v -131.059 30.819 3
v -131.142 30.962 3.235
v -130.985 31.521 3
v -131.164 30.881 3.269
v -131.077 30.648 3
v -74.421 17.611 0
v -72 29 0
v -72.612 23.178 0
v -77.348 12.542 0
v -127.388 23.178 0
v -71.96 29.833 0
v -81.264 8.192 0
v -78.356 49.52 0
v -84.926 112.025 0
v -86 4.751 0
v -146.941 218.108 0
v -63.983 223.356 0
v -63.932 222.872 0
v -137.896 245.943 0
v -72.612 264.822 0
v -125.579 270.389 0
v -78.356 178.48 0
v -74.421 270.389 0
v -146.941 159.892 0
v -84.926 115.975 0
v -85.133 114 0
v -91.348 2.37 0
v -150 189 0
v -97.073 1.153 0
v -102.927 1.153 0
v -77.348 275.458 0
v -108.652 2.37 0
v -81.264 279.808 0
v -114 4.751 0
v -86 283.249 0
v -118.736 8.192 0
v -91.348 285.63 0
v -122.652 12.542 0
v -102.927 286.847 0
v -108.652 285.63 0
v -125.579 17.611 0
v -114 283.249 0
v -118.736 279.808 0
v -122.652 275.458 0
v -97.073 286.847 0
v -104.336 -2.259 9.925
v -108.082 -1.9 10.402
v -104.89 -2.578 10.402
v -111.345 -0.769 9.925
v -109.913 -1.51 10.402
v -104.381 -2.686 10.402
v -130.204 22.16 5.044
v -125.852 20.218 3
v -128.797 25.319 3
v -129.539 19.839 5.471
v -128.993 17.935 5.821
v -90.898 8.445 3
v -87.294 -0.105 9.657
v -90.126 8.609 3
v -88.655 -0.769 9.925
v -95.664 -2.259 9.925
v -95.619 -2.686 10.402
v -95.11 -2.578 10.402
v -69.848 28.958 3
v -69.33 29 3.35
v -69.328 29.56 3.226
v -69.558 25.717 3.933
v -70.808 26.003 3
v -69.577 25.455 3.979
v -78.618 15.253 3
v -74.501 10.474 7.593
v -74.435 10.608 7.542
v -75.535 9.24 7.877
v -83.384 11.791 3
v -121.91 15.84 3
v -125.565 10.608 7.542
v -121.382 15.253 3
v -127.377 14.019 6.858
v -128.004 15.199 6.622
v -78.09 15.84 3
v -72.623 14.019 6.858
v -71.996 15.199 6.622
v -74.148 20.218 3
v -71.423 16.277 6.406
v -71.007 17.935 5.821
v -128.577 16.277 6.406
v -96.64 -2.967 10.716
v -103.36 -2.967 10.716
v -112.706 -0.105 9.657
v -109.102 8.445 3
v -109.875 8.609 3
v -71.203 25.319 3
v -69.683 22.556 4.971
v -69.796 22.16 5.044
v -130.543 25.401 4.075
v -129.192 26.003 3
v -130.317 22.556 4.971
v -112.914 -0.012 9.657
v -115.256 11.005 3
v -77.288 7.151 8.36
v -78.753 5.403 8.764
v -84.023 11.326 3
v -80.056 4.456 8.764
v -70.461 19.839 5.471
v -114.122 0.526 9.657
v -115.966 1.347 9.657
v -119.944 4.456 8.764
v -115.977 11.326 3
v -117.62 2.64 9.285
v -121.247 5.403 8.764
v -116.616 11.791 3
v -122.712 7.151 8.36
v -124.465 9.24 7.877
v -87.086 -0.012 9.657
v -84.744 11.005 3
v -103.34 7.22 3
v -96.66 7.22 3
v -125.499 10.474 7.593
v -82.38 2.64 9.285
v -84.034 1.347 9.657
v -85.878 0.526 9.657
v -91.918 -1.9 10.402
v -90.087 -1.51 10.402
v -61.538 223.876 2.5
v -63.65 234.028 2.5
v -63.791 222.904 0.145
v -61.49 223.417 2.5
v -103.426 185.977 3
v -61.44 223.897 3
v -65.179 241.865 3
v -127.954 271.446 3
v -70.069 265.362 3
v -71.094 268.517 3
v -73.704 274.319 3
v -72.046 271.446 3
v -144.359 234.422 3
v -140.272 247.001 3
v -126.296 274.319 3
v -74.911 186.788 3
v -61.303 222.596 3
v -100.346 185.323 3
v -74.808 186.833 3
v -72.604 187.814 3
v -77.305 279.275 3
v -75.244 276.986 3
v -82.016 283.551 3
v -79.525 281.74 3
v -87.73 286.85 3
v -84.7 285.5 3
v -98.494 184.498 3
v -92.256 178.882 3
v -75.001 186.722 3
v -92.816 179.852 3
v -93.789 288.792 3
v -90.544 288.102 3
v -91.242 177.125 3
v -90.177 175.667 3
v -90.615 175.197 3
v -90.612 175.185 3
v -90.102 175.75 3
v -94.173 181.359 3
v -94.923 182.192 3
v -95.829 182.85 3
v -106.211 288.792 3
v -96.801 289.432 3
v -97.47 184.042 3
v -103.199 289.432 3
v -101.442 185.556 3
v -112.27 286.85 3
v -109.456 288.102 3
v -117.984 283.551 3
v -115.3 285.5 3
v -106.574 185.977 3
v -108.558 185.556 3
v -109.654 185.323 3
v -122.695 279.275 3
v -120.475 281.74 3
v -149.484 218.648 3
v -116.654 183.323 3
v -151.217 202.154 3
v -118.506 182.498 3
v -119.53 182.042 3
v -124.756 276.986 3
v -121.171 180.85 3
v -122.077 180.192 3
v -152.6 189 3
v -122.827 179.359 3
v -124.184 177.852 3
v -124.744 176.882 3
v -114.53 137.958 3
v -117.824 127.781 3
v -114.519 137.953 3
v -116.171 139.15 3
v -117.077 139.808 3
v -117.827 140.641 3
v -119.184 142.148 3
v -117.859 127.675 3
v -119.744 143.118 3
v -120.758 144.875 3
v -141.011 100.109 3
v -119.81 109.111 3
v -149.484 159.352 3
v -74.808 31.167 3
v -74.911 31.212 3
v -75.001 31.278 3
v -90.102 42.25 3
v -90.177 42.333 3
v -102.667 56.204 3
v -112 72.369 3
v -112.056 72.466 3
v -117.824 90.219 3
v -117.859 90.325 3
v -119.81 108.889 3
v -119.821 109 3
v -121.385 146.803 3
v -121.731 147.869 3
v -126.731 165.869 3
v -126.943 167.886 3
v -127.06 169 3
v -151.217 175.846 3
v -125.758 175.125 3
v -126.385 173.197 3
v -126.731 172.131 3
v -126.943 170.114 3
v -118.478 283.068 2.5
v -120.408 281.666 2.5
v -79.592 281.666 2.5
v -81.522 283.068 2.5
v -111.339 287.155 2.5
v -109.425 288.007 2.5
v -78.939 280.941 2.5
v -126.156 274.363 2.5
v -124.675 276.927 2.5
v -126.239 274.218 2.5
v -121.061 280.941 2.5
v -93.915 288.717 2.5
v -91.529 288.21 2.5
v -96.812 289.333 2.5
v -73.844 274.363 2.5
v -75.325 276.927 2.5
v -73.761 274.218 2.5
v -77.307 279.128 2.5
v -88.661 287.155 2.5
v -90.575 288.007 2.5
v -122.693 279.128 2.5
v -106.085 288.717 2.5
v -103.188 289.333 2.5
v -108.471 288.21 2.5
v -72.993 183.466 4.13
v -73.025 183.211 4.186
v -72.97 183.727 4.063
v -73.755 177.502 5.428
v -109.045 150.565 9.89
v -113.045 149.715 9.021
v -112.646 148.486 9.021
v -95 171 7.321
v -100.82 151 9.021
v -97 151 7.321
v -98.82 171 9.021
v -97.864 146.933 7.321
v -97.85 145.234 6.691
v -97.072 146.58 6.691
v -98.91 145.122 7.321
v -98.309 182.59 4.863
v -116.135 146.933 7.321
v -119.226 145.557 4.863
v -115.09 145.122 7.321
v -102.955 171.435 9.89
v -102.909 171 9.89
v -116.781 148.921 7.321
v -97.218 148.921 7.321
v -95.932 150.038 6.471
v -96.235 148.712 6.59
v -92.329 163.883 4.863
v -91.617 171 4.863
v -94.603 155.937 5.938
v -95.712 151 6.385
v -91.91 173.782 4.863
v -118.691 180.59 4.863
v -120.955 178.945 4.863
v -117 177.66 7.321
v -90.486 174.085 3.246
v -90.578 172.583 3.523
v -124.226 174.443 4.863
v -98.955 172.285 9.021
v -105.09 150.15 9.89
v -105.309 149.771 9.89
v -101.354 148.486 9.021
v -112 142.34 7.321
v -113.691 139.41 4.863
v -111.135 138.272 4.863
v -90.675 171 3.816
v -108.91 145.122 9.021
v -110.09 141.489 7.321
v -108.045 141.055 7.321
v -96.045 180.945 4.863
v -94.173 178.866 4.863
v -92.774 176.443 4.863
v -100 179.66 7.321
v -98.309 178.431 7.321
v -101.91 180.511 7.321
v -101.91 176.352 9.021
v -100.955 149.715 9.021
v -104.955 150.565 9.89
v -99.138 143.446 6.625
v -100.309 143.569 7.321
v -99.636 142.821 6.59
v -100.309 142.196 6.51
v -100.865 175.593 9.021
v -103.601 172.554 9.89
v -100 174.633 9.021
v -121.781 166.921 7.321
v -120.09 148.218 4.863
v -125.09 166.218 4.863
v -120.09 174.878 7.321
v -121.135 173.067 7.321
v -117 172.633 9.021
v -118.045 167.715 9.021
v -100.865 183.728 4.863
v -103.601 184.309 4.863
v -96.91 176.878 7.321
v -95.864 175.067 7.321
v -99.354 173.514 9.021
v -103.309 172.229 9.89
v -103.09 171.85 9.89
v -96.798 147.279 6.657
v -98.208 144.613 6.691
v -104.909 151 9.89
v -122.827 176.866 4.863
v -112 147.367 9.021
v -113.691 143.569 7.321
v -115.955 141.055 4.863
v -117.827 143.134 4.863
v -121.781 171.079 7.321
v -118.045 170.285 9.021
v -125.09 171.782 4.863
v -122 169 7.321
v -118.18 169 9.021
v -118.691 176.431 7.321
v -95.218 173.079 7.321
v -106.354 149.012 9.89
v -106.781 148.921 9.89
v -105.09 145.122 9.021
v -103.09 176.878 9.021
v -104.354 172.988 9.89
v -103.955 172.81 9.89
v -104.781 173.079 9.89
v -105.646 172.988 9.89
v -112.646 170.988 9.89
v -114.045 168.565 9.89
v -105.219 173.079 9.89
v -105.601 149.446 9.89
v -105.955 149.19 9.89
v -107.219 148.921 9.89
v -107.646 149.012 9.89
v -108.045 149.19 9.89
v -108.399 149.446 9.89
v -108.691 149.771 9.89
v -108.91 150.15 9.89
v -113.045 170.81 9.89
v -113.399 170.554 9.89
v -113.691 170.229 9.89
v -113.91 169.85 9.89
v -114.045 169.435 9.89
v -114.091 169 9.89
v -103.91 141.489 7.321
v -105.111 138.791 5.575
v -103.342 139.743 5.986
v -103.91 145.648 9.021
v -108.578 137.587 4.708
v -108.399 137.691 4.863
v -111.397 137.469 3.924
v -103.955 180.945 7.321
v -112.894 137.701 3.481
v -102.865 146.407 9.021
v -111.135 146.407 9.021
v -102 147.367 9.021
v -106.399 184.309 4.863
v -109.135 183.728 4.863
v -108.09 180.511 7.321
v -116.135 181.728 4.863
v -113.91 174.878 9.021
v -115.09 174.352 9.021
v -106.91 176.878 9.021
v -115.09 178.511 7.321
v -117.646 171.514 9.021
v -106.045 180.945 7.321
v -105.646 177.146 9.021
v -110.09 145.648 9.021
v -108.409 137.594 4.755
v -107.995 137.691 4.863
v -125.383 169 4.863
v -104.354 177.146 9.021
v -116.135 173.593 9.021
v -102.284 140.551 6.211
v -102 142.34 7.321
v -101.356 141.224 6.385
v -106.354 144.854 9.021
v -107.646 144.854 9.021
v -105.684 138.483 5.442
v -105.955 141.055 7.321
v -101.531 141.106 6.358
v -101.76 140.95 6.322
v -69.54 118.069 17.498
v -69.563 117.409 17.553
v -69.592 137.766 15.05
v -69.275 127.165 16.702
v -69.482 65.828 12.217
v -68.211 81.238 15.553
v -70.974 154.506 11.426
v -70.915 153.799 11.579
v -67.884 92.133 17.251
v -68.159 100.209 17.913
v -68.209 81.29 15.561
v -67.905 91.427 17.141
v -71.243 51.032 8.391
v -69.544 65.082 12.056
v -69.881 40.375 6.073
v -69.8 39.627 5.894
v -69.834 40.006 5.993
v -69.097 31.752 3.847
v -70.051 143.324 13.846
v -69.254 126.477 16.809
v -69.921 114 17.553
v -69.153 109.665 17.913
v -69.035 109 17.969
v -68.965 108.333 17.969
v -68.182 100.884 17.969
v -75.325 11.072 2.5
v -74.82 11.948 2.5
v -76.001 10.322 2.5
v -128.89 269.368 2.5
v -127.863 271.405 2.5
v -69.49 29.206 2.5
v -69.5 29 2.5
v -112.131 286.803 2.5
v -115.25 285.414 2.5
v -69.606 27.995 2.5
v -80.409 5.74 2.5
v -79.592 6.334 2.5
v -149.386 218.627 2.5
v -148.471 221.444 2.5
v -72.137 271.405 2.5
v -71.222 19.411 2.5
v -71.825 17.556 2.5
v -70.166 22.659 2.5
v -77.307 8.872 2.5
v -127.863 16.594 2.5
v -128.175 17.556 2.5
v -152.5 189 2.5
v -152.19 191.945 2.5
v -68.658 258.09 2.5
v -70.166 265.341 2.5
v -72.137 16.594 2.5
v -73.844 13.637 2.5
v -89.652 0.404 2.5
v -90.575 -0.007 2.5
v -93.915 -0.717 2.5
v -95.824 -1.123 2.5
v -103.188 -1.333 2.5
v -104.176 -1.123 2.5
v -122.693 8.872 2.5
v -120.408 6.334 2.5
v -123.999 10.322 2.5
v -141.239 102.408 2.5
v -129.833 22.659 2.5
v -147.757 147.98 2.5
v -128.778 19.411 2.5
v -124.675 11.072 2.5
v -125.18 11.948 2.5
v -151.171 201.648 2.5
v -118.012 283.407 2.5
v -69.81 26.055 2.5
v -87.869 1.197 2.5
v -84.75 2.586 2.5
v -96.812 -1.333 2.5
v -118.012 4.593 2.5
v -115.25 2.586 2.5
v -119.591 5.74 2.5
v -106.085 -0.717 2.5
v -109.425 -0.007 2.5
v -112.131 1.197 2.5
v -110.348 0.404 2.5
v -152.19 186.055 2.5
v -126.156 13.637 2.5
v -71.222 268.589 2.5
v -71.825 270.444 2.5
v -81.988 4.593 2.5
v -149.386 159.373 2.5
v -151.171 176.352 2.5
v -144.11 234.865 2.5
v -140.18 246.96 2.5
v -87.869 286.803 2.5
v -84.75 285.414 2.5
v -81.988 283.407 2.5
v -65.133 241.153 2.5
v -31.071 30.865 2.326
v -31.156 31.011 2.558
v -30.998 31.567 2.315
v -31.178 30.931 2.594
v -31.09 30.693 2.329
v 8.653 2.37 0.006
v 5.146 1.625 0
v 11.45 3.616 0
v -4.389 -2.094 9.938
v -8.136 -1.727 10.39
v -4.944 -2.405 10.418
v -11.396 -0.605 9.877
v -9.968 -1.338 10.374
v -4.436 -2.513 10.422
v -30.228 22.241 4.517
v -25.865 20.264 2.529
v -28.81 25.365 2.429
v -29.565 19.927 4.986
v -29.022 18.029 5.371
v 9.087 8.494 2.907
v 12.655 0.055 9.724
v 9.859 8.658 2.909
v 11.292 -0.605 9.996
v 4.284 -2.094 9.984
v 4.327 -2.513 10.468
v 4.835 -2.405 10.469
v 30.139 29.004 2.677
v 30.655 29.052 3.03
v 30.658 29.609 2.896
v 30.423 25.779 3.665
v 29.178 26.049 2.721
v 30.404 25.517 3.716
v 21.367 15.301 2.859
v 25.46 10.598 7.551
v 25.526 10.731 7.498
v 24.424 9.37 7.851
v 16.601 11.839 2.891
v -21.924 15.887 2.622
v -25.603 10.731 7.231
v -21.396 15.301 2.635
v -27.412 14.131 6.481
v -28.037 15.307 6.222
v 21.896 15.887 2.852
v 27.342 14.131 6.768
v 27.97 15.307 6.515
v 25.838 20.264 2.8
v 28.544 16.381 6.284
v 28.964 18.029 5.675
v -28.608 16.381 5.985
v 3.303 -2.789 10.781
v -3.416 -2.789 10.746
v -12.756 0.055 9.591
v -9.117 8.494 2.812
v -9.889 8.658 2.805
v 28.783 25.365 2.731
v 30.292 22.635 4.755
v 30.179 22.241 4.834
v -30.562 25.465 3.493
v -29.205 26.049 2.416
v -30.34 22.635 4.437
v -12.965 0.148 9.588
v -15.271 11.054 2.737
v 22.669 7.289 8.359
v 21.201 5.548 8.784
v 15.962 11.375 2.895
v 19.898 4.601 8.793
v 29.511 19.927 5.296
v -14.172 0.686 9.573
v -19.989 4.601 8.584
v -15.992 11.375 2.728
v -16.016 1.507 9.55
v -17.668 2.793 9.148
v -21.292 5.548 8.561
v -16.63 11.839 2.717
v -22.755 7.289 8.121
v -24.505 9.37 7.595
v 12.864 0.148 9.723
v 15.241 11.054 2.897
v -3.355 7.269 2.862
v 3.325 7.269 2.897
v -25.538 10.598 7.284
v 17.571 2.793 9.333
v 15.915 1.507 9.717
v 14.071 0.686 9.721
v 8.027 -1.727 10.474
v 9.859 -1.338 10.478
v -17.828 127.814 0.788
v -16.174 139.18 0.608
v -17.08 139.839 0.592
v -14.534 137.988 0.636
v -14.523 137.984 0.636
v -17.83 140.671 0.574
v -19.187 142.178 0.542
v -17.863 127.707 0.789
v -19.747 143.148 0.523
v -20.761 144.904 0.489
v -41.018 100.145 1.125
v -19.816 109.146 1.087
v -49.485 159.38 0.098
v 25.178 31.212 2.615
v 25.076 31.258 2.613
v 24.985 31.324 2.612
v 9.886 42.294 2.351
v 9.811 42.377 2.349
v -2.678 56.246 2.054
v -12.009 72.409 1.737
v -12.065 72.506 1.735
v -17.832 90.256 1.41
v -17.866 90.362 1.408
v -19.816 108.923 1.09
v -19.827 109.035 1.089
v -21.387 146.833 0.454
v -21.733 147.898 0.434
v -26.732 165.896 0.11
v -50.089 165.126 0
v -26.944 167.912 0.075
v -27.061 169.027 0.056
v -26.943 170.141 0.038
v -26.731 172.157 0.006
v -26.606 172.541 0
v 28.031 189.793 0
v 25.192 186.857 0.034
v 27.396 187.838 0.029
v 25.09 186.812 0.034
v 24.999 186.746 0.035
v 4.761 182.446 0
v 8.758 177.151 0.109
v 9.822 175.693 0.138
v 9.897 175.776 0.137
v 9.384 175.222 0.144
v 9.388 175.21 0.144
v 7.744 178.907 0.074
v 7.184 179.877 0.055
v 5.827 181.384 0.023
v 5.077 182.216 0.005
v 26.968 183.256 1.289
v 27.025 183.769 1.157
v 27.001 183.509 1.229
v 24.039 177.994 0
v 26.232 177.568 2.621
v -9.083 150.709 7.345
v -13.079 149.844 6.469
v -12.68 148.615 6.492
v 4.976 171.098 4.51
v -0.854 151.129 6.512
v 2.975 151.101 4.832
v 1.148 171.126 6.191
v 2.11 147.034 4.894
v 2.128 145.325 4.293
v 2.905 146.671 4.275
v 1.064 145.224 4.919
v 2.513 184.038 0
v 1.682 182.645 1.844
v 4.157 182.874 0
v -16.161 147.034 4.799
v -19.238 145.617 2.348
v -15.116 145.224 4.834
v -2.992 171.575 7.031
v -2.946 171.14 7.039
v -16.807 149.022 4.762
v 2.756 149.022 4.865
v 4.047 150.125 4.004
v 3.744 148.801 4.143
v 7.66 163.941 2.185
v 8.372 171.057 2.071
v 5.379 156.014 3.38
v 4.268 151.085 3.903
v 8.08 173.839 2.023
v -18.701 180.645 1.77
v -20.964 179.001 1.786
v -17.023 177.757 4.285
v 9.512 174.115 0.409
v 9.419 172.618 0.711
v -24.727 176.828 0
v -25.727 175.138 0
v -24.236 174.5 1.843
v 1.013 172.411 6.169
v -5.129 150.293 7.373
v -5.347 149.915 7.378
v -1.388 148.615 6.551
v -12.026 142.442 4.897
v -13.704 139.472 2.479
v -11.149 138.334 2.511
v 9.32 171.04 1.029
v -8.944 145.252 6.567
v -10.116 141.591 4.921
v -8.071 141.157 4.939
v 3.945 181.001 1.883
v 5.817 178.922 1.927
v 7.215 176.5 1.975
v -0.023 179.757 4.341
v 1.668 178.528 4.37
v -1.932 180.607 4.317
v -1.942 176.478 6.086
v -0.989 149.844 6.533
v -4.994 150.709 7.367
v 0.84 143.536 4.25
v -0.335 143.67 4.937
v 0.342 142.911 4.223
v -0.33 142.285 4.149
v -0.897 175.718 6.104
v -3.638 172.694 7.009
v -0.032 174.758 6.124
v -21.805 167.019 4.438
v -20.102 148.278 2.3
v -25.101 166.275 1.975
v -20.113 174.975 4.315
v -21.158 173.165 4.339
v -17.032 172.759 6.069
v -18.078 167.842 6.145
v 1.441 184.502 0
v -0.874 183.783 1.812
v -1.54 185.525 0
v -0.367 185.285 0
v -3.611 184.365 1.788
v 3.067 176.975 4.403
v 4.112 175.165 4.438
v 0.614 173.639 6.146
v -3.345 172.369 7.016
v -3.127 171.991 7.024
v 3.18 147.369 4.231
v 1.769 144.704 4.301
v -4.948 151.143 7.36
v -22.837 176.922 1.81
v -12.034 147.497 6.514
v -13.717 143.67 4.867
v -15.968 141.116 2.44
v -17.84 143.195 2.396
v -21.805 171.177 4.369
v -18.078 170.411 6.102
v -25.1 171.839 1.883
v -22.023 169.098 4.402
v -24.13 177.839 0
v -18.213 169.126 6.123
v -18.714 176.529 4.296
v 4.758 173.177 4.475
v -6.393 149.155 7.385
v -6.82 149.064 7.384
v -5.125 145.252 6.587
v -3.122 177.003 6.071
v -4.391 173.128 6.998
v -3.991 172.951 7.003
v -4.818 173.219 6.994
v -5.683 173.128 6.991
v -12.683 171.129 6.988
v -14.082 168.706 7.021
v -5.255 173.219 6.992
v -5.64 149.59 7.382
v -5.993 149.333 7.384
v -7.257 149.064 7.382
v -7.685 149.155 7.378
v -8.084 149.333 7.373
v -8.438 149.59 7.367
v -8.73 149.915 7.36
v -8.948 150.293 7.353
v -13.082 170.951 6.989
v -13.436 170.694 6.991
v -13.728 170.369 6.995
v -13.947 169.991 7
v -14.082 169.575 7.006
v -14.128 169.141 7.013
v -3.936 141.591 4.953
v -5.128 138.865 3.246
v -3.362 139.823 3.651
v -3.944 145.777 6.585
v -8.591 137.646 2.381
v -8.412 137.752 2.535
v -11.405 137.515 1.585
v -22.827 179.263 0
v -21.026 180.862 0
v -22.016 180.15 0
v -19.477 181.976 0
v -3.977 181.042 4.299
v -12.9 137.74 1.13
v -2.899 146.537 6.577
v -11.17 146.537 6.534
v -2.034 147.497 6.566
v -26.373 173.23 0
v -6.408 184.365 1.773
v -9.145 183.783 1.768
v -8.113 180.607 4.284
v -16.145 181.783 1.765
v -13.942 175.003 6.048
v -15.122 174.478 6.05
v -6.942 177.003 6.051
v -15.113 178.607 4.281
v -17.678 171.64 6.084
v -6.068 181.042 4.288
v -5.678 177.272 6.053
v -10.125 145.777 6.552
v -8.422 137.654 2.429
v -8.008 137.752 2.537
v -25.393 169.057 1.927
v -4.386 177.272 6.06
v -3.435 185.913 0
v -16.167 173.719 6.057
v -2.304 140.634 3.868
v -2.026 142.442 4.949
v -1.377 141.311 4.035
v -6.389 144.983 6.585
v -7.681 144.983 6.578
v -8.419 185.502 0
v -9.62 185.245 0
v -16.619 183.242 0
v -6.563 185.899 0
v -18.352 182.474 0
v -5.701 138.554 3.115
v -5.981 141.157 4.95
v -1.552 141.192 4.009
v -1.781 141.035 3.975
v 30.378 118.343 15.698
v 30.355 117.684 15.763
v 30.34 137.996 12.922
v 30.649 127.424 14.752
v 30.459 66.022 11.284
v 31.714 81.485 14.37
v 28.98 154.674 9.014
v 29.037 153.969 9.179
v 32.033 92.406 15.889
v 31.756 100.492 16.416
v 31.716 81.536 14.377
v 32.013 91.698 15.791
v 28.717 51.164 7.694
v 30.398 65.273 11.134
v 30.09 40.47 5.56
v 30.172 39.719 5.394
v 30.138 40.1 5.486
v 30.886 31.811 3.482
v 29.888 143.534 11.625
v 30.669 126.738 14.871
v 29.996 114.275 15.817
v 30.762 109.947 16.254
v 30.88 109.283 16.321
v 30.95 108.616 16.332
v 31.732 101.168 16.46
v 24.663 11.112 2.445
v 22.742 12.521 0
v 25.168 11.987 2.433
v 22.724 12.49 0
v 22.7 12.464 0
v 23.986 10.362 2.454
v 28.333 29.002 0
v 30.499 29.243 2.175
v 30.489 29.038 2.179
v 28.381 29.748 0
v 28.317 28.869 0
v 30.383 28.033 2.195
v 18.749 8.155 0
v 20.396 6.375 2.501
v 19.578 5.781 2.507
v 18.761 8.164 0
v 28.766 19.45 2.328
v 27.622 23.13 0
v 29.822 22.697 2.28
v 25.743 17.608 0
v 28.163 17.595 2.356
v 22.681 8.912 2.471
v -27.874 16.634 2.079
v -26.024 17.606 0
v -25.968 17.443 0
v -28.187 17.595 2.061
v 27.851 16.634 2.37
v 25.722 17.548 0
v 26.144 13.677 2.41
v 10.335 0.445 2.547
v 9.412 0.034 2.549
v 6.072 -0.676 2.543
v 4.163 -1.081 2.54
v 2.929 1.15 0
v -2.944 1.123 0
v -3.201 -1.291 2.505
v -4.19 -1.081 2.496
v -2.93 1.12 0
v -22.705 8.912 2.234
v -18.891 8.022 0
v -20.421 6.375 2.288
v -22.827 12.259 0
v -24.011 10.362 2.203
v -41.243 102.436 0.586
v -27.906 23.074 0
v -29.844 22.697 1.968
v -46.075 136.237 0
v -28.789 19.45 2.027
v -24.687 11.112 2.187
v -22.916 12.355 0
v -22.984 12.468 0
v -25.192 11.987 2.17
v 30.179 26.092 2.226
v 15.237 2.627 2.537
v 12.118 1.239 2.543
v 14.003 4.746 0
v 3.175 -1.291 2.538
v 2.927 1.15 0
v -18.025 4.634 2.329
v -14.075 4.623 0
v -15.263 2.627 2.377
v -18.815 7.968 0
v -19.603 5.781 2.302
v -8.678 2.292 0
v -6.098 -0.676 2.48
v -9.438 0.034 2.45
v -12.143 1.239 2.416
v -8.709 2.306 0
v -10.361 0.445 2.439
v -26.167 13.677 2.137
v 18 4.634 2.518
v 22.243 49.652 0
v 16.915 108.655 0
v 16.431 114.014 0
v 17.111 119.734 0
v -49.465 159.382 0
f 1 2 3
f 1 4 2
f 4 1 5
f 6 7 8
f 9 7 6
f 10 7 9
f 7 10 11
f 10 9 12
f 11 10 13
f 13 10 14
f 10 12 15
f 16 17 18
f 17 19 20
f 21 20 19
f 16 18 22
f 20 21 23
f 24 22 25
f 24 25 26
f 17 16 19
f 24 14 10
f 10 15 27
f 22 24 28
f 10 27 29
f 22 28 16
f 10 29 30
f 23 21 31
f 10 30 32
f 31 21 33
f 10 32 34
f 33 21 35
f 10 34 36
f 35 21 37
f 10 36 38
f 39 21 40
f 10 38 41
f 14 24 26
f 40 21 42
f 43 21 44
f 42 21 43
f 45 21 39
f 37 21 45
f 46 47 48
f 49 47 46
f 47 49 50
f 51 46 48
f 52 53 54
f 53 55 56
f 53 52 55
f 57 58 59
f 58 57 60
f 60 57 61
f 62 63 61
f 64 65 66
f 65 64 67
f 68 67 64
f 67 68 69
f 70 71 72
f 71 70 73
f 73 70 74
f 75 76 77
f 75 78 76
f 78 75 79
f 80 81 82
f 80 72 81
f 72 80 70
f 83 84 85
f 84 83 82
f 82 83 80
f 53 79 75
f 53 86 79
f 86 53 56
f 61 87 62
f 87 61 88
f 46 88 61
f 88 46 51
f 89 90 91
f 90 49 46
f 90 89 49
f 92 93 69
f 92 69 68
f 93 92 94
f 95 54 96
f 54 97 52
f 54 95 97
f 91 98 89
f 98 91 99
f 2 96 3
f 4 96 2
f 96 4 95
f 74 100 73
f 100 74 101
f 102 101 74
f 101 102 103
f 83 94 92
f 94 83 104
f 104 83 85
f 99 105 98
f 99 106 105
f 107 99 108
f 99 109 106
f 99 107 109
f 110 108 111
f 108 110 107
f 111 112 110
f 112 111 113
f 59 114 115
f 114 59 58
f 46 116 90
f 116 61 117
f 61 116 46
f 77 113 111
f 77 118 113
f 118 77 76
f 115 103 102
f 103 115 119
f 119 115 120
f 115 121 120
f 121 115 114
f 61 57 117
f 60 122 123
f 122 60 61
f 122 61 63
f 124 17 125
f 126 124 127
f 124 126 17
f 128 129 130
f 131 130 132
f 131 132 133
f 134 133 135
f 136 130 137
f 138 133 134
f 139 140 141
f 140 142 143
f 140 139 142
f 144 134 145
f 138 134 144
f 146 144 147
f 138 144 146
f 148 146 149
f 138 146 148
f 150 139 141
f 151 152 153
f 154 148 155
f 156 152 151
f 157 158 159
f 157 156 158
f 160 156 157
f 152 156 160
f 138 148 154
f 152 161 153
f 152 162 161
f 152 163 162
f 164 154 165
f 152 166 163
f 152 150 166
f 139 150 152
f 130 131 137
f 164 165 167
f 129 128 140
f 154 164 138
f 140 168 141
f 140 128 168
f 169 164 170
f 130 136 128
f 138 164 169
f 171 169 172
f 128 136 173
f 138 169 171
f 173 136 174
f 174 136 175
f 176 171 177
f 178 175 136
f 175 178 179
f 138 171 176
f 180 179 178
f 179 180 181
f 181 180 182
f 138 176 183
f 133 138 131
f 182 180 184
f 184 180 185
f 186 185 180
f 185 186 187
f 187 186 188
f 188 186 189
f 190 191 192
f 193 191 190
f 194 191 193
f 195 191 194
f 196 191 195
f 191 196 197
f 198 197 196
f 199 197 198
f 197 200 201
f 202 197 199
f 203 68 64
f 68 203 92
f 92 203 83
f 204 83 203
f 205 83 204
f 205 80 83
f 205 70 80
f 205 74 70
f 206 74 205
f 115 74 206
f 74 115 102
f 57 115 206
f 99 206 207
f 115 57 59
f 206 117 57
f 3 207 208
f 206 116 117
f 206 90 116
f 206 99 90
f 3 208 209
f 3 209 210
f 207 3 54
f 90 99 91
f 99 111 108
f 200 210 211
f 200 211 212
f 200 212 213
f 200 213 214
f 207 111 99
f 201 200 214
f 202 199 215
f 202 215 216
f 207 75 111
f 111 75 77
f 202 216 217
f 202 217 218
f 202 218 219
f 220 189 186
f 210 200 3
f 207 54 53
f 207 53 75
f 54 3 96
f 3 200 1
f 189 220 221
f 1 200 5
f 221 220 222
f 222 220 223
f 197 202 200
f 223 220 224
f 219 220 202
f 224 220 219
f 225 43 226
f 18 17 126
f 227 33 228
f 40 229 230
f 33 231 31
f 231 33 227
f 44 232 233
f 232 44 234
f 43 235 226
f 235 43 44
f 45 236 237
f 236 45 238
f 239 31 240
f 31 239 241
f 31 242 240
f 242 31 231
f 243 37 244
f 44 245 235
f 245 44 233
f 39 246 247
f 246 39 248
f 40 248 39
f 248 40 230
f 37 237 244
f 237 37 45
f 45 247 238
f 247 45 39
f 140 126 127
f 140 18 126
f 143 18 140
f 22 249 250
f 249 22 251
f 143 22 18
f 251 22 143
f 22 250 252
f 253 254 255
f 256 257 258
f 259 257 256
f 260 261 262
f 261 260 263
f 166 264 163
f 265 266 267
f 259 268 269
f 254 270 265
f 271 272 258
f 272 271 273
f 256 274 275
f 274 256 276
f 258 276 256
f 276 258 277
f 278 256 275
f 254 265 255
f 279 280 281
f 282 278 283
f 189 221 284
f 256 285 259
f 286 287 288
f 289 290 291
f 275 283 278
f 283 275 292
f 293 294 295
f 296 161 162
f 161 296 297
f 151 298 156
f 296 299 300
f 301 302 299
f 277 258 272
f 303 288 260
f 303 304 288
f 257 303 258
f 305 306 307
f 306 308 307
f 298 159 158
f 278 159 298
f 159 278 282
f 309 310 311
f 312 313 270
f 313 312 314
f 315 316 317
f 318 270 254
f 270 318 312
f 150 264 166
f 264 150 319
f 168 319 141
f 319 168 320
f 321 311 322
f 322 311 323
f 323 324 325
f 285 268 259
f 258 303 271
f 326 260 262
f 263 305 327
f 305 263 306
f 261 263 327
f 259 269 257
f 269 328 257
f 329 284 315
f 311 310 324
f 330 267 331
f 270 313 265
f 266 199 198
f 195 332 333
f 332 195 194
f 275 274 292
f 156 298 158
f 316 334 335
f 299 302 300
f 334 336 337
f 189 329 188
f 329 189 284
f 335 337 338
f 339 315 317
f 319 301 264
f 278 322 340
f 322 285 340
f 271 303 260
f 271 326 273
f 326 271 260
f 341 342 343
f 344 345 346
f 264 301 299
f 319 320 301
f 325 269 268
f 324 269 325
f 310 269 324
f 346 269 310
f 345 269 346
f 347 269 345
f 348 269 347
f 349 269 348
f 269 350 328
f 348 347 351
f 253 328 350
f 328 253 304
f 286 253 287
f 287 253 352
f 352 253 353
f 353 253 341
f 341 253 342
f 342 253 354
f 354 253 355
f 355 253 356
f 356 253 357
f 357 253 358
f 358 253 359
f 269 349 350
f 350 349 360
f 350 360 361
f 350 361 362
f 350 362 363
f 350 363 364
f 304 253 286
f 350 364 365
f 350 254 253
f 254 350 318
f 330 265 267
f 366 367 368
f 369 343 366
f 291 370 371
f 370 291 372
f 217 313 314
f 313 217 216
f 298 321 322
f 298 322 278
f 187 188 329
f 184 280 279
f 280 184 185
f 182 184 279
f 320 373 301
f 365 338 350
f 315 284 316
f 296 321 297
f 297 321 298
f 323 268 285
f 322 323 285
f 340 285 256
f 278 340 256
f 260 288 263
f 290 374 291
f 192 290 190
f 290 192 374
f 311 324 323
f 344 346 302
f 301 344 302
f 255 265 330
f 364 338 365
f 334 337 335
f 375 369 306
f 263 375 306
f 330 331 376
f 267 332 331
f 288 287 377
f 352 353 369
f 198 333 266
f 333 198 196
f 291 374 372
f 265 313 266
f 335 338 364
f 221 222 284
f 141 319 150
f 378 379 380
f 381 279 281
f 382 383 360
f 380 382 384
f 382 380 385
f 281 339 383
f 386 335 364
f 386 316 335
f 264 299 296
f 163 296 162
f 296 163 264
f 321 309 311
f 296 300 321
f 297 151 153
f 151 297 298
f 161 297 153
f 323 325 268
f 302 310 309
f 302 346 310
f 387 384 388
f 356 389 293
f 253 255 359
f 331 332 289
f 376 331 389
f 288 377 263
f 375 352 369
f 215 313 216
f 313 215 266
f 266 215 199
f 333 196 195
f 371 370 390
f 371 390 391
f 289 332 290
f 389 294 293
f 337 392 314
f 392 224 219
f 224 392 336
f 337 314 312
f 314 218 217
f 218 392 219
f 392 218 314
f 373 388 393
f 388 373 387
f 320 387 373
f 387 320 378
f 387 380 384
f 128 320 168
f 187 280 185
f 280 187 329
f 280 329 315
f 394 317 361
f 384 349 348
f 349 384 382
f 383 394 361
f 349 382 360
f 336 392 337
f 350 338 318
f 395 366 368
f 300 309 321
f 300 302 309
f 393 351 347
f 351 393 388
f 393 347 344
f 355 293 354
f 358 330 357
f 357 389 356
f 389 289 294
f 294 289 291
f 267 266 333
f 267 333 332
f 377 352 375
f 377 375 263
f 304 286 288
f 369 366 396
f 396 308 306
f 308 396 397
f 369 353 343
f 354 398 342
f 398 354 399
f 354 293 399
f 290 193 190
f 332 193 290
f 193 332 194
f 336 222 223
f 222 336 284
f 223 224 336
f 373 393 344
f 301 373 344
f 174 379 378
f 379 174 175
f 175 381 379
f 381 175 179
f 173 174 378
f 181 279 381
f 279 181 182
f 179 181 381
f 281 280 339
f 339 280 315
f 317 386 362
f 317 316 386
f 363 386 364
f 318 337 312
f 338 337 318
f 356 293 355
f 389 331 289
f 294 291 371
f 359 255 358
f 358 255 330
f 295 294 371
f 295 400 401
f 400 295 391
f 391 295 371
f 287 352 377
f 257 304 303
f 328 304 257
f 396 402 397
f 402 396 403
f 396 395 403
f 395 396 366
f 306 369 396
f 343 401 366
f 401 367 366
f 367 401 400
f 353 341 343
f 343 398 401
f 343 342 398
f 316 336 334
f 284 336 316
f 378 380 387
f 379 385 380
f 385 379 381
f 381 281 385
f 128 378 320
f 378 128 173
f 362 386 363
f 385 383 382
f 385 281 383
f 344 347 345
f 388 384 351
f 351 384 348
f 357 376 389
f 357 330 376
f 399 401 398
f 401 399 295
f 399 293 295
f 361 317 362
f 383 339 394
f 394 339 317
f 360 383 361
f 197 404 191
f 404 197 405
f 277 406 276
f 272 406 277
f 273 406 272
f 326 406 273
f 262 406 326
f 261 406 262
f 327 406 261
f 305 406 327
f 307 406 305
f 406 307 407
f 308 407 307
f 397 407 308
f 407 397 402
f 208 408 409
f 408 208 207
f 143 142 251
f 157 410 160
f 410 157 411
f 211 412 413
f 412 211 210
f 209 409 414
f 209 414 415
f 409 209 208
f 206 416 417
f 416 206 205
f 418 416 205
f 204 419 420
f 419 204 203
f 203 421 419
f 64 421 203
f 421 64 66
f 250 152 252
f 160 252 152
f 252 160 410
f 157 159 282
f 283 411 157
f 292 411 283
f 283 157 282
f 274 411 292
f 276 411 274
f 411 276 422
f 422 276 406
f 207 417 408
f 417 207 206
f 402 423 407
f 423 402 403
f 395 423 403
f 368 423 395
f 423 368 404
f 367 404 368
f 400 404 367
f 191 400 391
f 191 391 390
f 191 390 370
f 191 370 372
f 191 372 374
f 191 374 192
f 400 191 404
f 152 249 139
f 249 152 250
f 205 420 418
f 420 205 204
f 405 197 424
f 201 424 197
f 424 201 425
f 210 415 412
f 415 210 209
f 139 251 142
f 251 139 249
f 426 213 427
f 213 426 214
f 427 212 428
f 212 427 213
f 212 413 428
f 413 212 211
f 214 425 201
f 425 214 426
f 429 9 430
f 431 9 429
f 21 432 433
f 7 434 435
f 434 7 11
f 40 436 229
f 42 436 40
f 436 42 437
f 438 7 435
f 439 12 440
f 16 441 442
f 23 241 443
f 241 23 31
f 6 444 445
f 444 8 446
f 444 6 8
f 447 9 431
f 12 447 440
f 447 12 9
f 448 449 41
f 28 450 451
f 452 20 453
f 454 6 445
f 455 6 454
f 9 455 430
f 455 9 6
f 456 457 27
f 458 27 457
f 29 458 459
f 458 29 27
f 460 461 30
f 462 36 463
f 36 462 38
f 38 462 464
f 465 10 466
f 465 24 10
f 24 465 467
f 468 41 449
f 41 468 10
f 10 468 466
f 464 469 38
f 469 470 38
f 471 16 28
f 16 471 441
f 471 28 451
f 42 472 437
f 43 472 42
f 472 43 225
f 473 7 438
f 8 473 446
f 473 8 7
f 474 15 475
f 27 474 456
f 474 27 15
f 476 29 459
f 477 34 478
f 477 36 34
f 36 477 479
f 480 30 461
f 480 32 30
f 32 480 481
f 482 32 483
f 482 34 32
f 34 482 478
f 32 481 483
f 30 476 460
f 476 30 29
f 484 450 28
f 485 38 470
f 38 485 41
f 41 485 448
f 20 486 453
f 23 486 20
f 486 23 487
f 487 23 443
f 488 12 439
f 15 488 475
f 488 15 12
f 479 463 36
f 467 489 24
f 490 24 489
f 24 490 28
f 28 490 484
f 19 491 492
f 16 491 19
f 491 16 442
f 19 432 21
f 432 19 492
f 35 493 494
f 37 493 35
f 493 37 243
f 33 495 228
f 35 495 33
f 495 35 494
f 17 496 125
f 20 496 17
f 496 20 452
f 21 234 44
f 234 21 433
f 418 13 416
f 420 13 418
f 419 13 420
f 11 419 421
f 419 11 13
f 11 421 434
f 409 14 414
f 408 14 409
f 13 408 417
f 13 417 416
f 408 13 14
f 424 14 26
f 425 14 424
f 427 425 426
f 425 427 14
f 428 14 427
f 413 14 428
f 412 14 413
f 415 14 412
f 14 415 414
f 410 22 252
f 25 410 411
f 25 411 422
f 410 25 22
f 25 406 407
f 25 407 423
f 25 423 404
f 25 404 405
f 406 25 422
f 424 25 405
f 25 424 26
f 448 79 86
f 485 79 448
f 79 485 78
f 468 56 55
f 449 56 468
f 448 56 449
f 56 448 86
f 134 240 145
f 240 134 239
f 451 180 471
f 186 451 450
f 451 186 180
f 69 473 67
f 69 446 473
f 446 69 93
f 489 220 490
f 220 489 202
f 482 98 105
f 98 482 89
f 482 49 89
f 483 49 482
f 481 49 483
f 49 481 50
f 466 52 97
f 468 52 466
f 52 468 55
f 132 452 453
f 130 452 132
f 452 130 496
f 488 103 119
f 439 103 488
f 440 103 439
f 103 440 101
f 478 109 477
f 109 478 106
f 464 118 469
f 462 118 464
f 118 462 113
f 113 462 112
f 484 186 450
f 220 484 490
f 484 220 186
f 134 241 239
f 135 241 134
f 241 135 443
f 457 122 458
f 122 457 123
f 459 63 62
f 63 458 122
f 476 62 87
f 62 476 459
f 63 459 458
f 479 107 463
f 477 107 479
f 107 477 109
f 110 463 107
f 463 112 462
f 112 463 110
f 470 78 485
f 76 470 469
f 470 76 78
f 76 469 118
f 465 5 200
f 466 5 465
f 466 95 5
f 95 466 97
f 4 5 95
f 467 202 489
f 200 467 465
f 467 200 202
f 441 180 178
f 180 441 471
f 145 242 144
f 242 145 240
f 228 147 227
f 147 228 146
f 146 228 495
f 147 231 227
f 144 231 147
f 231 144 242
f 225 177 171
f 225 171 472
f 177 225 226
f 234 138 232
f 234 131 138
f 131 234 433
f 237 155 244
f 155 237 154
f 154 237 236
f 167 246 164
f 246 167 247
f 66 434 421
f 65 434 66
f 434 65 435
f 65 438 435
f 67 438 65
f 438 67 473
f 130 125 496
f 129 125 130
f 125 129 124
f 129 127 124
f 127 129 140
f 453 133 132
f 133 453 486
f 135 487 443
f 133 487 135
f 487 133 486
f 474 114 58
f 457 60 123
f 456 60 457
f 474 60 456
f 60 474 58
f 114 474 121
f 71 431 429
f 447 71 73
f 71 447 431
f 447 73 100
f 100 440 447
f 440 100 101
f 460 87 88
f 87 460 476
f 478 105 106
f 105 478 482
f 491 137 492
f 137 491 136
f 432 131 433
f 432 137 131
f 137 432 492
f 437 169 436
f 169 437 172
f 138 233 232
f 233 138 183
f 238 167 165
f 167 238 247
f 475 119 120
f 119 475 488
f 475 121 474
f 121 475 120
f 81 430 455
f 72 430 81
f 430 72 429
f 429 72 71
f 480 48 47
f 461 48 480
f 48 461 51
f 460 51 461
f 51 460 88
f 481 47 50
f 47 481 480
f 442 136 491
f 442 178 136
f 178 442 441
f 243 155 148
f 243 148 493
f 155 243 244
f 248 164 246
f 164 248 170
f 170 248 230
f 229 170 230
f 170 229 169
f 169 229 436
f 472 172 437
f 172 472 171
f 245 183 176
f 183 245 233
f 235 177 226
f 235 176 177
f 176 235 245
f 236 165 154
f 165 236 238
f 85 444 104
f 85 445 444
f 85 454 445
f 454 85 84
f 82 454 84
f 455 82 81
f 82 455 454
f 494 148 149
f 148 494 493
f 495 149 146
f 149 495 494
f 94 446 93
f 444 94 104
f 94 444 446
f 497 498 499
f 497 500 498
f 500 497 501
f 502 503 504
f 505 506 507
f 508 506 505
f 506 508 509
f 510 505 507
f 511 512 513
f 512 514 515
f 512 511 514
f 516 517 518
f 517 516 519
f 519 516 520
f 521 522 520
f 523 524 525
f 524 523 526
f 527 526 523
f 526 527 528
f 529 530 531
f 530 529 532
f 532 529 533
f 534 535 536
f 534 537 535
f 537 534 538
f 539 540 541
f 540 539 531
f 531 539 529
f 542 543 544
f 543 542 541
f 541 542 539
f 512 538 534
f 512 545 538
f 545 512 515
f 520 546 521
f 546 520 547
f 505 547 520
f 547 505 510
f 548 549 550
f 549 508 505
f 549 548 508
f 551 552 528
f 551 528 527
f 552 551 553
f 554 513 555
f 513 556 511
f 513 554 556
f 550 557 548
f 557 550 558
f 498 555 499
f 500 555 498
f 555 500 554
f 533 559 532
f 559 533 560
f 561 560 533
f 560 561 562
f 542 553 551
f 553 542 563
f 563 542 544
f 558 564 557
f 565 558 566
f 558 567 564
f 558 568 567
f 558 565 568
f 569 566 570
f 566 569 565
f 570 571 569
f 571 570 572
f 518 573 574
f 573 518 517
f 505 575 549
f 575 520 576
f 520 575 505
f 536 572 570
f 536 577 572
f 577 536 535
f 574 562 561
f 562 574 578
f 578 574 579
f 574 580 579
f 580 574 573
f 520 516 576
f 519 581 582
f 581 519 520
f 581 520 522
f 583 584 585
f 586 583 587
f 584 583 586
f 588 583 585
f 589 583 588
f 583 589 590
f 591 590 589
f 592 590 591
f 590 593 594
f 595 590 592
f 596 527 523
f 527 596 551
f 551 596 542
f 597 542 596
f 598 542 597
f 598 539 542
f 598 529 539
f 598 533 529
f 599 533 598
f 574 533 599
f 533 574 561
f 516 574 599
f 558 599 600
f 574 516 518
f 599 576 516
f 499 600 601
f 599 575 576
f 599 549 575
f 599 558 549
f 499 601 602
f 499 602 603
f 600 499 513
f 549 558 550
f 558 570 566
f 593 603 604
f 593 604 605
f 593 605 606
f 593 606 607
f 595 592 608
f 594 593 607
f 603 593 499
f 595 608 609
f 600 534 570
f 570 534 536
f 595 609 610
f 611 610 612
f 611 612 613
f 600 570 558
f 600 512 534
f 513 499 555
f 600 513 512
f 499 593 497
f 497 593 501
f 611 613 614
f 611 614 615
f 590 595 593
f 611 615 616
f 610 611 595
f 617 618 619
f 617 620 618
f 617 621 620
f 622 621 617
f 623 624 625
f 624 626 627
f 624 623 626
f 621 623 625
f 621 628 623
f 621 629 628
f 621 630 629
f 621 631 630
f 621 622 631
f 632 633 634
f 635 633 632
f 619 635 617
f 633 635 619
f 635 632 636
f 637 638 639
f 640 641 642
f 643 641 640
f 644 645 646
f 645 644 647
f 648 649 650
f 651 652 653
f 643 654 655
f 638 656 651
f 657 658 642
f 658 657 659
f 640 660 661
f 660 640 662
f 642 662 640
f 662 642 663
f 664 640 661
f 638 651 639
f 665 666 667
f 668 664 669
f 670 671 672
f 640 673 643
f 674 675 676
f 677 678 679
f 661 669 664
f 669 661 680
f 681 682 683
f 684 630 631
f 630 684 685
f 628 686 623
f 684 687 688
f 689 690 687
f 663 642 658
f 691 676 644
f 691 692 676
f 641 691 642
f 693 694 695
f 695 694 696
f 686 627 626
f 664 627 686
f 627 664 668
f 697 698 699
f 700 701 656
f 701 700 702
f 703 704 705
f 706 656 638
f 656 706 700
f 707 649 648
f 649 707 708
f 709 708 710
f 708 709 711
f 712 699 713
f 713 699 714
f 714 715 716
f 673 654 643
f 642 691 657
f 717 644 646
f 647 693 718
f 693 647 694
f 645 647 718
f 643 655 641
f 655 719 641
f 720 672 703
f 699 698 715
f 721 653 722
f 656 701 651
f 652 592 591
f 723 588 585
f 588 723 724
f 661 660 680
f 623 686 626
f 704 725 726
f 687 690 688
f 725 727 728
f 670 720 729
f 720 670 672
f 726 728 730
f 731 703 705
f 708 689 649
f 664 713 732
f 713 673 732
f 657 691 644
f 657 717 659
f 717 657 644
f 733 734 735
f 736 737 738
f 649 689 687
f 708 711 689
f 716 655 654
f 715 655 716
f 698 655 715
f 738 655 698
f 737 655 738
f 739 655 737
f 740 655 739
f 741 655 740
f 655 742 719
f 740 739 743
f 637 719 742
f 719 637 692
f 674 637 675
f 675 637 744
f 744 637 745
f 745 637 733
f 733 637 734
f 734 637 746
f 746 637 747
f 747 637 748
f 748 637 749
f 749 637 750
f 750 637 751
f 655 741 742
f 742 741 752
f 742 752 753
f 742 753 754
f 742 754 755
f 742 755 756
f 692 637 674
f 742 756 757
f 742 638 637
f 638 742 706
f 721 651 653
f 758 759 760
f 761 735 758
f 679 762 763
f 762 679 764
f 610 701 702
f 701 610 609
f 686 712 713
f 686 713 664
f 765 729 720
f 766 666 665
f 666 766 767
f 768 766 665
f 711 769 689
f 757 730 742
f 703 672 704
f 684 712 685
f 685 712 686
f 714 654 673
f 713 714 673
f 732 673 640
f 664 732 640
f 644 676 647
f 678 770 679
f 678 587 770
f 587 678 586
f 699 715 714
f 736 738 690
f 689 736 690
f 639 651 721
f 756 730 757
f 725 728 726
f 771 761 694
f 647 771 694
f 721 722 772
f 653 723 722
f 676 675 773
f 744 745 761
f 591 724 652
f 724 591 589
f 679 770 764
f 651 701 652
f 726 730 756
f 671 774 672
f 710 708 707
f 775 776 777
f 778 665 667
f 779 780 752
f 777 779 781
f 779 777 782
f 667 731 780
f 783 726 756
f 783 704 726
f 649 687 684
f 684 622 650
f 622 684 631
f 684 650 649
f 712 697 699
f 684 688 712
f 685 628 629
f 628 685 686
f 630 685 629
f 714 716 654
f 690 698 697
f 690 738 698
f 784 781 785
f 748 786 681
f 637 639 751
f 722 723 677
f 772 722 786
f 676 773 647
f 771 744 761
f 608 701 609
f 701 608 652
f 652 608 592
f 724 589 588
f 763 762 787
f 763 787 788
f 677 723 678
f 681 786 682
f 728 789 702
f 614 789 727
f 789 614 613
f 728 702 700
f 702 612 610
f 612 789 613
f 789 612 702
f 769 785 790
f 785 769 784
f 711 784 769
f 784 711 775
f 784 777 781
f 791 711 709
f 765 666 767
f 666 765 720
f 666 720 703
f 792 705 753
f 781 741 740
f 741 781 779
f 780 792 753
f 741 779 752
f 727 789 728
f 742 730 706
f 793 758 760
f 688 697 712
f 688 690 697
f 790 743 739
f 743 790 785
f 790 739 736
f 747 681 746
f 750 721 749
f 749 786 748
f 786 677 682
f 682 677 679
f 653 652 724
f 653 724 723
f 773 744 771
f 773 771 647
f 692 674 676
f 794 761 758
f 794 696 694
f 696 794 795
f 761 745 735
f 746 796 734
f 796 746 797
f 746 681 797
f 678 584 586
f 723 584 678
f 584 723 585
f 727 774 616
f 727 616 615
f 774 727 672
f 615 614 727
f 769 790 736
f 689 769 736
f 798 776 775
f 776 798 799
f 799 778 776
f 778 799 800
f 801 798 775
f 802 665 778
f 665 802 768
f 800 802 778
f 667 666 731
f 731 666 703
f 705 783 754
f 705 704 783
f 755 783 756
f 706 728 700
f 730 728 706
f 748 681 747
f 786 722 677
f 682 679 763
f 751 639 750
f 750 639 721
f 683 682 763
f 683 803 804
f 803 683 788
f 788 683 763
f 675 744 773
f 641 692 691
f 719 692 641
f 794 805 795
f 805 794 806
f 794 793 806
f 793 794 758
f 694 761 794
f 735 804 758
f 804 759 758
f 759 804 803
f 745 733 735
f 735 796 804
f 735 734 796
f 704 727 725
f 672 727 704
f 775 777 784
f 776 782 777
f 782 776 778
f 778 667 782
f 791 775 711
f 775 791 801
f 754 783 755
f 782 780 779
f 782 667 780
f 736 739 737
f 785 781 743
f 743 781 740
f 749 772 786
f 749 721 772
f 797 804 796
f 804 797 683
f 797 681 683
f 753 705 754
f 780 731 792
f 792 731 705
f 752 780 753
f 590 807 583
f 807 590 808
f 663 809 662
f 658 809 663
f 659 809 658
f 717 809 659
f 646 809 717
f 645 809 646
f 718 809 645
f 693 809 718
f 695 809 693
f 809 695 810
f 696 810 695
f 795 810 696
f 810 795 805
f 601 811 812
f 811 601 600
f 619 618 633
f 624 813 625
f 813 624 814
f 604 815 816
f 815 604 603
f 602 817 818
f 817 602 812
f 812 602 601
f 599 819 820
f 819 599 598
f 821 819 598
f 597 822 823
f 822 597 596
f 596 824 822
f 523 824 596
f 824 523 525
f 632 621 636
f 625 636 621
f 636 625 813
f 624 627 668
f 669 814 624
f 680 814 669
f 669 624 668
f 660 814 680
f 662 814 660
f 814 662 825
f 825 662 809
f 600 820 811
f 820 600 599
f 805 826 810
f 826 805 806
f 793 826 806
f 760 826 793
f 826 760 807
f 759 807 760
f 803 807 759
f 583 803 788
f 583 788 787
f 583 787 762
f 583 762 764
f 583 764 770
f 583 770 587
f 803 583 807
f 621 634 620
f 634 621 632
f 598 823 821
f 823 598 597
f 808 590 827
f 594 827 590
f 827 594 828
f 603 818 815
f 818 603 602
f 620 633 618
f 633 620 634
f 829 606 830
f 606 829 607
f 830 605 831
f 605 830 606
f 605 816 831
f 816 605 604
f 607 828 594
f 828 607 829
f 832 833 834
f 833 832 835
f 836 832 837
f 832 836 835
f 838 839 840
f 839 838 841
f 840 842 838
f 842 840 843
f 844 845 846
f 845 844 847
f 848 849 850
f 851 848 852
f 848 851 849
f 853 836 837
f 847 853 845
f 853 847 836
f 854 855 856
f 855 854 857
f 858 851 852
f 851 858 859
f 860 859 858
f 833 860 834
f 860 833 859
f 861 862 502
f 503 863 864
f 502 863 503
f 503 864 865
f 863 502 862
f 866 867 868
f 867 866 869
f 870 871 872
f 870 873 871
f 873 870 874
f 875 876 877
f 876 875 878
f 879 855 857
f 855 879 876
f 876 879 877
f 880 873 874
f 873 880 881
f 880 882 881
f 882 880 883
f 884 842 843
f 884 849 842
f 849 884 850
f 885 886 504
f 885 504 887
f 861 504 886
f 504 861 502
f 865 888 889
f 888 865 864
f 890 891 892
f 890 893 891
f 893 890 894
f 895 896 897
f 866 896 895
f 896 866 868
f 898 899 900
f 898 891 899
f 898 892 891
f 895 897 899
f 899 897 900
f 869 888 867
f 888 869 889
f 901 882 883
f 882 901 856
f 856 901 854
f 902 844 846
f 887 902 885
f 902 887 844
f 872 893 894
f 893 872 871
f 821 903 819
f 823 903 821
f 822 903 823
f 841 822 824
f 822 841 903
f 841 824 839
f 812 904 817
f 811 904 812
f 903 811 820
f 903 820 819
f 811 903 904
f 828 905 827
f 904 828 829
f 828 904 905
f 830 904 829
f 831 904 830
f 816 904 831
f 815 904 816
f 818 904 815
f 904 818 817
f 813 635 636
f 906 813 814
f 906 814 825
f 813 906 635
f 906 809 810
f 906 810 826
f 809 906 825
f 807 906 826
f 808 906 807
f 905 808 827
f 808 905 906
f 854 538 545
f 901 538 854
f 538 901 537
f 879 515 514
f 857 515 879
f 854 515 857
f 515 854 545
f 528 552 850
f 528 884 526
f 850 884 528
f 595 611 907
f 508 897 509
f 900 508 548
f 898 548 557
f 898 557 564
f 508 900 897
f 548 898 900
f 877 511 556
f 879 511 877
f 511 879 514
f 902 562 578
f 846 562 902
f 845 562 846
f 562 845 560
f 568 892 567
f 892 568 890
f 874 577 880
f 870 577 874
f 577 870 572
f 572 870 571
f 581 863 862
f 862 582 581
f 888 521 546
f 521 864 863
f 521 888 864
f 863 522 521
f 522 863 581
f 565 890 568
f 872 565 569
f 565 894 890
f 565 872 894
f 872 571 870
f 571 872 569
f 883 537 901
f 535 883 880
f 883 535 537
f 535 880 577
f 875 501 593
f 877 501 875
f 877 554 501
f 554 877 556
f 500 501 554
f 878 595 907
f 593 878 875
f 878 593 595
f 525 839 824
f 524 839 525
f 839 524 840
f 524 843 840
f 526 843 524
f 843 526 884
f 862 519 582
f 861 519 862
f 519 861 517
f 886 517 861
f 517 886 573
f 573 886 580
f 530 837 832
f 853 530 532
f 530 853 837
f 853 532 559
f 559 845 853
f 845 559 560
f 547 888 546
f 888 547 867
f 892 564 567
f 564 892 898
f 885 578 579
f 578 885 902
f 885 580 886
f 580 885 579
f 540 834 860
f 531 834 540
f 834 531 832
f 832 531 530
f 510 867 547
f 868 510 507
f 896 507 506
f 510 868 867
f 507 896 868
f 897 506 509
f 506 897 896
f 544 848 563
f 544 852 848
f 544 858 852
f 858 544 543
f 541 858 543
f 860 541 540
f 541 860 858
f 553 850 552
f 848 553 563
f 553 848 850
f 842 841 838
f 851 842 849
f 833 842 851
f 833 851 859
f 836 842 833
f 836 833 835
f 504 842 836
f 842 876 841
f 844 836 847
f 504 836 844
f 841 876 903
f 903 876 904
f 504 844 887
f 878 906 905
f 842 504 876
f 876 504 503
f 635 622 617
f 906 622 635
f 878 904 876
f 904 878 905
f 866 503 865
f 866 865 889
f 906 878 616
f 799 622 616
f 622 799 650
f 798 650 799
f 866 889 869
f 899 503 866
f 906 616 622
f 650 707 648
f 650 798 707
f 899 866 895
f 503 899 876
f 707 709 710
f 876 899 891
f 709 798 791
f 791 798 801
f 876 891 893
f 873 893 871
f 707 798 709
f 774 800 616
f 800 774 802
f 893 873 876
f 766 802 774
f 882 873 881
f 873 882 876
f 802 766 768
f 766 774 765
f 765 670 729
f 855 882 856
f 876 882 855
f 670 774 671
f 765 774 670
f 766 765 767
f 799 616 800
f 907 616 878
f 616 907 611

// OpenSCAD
/*
 @since 9 October 2019 20:18 PM (creation date)
 @author Peter Withers <peter-gthb@bambooradical.com>
*/
module innersole(thickness, taper) {
    difference() {
        hull(){
            // heel
            cylinder(thickness,28,28+(taper*thickness));
            // toe
            translate([0,230,0]) cylinder(thickness,28,28+(taper*thickness));
            // instep
            intersection(){
              translate([-8,185,0]) cylinder(thickness,45,45+(taper*thickness));
              translate([0,00,0]) cube([50,250,thickness]);
            }
            // outstep
            intersection(){
              translate([90,160,0]) cylinder(thickness,140,140+(taper*thickness));
              translate([-100,0,0]) cube([100,250,thickness]);
            }
        }
        // arch
        translate([325,85,-1]) cylinder(30,311,285);
    }
}

module orthoticFull() {
    intersection() {
        union() {
            innersole(3,1);
            // metatarsal domes
            hull(){
                translate([-7,122,-10]) sphere(20);
                translate([-5,142,-10]) sphere(20);
                translate([-12,140,-10]) sphere(20);
            }
            // arch
            translate([70,80,0]) cylinder(28,100,5);
            difference() {
                // heel flange
                cylinder(12,30,35);
                translate([0,10,56]) sphere(62);
            }
        }
        // clipping box
        intersection() {
        innersole(30,1);
        translate([0,0,-10]) innersole(30,0.2);
        }
    }
}
module orthoticHalf() {
    difference() {
        rotate([-0.95,-0.3,0]) translate([0,29,0]) orthoticFull();
        translate([-55,-5,-50]) cube([100,300,50]);
    }
}
translate([-100,29,0])orthoticFull();
orthoticHalf();
// calibration cube
//cube([70*2,70*2,70*2]);
